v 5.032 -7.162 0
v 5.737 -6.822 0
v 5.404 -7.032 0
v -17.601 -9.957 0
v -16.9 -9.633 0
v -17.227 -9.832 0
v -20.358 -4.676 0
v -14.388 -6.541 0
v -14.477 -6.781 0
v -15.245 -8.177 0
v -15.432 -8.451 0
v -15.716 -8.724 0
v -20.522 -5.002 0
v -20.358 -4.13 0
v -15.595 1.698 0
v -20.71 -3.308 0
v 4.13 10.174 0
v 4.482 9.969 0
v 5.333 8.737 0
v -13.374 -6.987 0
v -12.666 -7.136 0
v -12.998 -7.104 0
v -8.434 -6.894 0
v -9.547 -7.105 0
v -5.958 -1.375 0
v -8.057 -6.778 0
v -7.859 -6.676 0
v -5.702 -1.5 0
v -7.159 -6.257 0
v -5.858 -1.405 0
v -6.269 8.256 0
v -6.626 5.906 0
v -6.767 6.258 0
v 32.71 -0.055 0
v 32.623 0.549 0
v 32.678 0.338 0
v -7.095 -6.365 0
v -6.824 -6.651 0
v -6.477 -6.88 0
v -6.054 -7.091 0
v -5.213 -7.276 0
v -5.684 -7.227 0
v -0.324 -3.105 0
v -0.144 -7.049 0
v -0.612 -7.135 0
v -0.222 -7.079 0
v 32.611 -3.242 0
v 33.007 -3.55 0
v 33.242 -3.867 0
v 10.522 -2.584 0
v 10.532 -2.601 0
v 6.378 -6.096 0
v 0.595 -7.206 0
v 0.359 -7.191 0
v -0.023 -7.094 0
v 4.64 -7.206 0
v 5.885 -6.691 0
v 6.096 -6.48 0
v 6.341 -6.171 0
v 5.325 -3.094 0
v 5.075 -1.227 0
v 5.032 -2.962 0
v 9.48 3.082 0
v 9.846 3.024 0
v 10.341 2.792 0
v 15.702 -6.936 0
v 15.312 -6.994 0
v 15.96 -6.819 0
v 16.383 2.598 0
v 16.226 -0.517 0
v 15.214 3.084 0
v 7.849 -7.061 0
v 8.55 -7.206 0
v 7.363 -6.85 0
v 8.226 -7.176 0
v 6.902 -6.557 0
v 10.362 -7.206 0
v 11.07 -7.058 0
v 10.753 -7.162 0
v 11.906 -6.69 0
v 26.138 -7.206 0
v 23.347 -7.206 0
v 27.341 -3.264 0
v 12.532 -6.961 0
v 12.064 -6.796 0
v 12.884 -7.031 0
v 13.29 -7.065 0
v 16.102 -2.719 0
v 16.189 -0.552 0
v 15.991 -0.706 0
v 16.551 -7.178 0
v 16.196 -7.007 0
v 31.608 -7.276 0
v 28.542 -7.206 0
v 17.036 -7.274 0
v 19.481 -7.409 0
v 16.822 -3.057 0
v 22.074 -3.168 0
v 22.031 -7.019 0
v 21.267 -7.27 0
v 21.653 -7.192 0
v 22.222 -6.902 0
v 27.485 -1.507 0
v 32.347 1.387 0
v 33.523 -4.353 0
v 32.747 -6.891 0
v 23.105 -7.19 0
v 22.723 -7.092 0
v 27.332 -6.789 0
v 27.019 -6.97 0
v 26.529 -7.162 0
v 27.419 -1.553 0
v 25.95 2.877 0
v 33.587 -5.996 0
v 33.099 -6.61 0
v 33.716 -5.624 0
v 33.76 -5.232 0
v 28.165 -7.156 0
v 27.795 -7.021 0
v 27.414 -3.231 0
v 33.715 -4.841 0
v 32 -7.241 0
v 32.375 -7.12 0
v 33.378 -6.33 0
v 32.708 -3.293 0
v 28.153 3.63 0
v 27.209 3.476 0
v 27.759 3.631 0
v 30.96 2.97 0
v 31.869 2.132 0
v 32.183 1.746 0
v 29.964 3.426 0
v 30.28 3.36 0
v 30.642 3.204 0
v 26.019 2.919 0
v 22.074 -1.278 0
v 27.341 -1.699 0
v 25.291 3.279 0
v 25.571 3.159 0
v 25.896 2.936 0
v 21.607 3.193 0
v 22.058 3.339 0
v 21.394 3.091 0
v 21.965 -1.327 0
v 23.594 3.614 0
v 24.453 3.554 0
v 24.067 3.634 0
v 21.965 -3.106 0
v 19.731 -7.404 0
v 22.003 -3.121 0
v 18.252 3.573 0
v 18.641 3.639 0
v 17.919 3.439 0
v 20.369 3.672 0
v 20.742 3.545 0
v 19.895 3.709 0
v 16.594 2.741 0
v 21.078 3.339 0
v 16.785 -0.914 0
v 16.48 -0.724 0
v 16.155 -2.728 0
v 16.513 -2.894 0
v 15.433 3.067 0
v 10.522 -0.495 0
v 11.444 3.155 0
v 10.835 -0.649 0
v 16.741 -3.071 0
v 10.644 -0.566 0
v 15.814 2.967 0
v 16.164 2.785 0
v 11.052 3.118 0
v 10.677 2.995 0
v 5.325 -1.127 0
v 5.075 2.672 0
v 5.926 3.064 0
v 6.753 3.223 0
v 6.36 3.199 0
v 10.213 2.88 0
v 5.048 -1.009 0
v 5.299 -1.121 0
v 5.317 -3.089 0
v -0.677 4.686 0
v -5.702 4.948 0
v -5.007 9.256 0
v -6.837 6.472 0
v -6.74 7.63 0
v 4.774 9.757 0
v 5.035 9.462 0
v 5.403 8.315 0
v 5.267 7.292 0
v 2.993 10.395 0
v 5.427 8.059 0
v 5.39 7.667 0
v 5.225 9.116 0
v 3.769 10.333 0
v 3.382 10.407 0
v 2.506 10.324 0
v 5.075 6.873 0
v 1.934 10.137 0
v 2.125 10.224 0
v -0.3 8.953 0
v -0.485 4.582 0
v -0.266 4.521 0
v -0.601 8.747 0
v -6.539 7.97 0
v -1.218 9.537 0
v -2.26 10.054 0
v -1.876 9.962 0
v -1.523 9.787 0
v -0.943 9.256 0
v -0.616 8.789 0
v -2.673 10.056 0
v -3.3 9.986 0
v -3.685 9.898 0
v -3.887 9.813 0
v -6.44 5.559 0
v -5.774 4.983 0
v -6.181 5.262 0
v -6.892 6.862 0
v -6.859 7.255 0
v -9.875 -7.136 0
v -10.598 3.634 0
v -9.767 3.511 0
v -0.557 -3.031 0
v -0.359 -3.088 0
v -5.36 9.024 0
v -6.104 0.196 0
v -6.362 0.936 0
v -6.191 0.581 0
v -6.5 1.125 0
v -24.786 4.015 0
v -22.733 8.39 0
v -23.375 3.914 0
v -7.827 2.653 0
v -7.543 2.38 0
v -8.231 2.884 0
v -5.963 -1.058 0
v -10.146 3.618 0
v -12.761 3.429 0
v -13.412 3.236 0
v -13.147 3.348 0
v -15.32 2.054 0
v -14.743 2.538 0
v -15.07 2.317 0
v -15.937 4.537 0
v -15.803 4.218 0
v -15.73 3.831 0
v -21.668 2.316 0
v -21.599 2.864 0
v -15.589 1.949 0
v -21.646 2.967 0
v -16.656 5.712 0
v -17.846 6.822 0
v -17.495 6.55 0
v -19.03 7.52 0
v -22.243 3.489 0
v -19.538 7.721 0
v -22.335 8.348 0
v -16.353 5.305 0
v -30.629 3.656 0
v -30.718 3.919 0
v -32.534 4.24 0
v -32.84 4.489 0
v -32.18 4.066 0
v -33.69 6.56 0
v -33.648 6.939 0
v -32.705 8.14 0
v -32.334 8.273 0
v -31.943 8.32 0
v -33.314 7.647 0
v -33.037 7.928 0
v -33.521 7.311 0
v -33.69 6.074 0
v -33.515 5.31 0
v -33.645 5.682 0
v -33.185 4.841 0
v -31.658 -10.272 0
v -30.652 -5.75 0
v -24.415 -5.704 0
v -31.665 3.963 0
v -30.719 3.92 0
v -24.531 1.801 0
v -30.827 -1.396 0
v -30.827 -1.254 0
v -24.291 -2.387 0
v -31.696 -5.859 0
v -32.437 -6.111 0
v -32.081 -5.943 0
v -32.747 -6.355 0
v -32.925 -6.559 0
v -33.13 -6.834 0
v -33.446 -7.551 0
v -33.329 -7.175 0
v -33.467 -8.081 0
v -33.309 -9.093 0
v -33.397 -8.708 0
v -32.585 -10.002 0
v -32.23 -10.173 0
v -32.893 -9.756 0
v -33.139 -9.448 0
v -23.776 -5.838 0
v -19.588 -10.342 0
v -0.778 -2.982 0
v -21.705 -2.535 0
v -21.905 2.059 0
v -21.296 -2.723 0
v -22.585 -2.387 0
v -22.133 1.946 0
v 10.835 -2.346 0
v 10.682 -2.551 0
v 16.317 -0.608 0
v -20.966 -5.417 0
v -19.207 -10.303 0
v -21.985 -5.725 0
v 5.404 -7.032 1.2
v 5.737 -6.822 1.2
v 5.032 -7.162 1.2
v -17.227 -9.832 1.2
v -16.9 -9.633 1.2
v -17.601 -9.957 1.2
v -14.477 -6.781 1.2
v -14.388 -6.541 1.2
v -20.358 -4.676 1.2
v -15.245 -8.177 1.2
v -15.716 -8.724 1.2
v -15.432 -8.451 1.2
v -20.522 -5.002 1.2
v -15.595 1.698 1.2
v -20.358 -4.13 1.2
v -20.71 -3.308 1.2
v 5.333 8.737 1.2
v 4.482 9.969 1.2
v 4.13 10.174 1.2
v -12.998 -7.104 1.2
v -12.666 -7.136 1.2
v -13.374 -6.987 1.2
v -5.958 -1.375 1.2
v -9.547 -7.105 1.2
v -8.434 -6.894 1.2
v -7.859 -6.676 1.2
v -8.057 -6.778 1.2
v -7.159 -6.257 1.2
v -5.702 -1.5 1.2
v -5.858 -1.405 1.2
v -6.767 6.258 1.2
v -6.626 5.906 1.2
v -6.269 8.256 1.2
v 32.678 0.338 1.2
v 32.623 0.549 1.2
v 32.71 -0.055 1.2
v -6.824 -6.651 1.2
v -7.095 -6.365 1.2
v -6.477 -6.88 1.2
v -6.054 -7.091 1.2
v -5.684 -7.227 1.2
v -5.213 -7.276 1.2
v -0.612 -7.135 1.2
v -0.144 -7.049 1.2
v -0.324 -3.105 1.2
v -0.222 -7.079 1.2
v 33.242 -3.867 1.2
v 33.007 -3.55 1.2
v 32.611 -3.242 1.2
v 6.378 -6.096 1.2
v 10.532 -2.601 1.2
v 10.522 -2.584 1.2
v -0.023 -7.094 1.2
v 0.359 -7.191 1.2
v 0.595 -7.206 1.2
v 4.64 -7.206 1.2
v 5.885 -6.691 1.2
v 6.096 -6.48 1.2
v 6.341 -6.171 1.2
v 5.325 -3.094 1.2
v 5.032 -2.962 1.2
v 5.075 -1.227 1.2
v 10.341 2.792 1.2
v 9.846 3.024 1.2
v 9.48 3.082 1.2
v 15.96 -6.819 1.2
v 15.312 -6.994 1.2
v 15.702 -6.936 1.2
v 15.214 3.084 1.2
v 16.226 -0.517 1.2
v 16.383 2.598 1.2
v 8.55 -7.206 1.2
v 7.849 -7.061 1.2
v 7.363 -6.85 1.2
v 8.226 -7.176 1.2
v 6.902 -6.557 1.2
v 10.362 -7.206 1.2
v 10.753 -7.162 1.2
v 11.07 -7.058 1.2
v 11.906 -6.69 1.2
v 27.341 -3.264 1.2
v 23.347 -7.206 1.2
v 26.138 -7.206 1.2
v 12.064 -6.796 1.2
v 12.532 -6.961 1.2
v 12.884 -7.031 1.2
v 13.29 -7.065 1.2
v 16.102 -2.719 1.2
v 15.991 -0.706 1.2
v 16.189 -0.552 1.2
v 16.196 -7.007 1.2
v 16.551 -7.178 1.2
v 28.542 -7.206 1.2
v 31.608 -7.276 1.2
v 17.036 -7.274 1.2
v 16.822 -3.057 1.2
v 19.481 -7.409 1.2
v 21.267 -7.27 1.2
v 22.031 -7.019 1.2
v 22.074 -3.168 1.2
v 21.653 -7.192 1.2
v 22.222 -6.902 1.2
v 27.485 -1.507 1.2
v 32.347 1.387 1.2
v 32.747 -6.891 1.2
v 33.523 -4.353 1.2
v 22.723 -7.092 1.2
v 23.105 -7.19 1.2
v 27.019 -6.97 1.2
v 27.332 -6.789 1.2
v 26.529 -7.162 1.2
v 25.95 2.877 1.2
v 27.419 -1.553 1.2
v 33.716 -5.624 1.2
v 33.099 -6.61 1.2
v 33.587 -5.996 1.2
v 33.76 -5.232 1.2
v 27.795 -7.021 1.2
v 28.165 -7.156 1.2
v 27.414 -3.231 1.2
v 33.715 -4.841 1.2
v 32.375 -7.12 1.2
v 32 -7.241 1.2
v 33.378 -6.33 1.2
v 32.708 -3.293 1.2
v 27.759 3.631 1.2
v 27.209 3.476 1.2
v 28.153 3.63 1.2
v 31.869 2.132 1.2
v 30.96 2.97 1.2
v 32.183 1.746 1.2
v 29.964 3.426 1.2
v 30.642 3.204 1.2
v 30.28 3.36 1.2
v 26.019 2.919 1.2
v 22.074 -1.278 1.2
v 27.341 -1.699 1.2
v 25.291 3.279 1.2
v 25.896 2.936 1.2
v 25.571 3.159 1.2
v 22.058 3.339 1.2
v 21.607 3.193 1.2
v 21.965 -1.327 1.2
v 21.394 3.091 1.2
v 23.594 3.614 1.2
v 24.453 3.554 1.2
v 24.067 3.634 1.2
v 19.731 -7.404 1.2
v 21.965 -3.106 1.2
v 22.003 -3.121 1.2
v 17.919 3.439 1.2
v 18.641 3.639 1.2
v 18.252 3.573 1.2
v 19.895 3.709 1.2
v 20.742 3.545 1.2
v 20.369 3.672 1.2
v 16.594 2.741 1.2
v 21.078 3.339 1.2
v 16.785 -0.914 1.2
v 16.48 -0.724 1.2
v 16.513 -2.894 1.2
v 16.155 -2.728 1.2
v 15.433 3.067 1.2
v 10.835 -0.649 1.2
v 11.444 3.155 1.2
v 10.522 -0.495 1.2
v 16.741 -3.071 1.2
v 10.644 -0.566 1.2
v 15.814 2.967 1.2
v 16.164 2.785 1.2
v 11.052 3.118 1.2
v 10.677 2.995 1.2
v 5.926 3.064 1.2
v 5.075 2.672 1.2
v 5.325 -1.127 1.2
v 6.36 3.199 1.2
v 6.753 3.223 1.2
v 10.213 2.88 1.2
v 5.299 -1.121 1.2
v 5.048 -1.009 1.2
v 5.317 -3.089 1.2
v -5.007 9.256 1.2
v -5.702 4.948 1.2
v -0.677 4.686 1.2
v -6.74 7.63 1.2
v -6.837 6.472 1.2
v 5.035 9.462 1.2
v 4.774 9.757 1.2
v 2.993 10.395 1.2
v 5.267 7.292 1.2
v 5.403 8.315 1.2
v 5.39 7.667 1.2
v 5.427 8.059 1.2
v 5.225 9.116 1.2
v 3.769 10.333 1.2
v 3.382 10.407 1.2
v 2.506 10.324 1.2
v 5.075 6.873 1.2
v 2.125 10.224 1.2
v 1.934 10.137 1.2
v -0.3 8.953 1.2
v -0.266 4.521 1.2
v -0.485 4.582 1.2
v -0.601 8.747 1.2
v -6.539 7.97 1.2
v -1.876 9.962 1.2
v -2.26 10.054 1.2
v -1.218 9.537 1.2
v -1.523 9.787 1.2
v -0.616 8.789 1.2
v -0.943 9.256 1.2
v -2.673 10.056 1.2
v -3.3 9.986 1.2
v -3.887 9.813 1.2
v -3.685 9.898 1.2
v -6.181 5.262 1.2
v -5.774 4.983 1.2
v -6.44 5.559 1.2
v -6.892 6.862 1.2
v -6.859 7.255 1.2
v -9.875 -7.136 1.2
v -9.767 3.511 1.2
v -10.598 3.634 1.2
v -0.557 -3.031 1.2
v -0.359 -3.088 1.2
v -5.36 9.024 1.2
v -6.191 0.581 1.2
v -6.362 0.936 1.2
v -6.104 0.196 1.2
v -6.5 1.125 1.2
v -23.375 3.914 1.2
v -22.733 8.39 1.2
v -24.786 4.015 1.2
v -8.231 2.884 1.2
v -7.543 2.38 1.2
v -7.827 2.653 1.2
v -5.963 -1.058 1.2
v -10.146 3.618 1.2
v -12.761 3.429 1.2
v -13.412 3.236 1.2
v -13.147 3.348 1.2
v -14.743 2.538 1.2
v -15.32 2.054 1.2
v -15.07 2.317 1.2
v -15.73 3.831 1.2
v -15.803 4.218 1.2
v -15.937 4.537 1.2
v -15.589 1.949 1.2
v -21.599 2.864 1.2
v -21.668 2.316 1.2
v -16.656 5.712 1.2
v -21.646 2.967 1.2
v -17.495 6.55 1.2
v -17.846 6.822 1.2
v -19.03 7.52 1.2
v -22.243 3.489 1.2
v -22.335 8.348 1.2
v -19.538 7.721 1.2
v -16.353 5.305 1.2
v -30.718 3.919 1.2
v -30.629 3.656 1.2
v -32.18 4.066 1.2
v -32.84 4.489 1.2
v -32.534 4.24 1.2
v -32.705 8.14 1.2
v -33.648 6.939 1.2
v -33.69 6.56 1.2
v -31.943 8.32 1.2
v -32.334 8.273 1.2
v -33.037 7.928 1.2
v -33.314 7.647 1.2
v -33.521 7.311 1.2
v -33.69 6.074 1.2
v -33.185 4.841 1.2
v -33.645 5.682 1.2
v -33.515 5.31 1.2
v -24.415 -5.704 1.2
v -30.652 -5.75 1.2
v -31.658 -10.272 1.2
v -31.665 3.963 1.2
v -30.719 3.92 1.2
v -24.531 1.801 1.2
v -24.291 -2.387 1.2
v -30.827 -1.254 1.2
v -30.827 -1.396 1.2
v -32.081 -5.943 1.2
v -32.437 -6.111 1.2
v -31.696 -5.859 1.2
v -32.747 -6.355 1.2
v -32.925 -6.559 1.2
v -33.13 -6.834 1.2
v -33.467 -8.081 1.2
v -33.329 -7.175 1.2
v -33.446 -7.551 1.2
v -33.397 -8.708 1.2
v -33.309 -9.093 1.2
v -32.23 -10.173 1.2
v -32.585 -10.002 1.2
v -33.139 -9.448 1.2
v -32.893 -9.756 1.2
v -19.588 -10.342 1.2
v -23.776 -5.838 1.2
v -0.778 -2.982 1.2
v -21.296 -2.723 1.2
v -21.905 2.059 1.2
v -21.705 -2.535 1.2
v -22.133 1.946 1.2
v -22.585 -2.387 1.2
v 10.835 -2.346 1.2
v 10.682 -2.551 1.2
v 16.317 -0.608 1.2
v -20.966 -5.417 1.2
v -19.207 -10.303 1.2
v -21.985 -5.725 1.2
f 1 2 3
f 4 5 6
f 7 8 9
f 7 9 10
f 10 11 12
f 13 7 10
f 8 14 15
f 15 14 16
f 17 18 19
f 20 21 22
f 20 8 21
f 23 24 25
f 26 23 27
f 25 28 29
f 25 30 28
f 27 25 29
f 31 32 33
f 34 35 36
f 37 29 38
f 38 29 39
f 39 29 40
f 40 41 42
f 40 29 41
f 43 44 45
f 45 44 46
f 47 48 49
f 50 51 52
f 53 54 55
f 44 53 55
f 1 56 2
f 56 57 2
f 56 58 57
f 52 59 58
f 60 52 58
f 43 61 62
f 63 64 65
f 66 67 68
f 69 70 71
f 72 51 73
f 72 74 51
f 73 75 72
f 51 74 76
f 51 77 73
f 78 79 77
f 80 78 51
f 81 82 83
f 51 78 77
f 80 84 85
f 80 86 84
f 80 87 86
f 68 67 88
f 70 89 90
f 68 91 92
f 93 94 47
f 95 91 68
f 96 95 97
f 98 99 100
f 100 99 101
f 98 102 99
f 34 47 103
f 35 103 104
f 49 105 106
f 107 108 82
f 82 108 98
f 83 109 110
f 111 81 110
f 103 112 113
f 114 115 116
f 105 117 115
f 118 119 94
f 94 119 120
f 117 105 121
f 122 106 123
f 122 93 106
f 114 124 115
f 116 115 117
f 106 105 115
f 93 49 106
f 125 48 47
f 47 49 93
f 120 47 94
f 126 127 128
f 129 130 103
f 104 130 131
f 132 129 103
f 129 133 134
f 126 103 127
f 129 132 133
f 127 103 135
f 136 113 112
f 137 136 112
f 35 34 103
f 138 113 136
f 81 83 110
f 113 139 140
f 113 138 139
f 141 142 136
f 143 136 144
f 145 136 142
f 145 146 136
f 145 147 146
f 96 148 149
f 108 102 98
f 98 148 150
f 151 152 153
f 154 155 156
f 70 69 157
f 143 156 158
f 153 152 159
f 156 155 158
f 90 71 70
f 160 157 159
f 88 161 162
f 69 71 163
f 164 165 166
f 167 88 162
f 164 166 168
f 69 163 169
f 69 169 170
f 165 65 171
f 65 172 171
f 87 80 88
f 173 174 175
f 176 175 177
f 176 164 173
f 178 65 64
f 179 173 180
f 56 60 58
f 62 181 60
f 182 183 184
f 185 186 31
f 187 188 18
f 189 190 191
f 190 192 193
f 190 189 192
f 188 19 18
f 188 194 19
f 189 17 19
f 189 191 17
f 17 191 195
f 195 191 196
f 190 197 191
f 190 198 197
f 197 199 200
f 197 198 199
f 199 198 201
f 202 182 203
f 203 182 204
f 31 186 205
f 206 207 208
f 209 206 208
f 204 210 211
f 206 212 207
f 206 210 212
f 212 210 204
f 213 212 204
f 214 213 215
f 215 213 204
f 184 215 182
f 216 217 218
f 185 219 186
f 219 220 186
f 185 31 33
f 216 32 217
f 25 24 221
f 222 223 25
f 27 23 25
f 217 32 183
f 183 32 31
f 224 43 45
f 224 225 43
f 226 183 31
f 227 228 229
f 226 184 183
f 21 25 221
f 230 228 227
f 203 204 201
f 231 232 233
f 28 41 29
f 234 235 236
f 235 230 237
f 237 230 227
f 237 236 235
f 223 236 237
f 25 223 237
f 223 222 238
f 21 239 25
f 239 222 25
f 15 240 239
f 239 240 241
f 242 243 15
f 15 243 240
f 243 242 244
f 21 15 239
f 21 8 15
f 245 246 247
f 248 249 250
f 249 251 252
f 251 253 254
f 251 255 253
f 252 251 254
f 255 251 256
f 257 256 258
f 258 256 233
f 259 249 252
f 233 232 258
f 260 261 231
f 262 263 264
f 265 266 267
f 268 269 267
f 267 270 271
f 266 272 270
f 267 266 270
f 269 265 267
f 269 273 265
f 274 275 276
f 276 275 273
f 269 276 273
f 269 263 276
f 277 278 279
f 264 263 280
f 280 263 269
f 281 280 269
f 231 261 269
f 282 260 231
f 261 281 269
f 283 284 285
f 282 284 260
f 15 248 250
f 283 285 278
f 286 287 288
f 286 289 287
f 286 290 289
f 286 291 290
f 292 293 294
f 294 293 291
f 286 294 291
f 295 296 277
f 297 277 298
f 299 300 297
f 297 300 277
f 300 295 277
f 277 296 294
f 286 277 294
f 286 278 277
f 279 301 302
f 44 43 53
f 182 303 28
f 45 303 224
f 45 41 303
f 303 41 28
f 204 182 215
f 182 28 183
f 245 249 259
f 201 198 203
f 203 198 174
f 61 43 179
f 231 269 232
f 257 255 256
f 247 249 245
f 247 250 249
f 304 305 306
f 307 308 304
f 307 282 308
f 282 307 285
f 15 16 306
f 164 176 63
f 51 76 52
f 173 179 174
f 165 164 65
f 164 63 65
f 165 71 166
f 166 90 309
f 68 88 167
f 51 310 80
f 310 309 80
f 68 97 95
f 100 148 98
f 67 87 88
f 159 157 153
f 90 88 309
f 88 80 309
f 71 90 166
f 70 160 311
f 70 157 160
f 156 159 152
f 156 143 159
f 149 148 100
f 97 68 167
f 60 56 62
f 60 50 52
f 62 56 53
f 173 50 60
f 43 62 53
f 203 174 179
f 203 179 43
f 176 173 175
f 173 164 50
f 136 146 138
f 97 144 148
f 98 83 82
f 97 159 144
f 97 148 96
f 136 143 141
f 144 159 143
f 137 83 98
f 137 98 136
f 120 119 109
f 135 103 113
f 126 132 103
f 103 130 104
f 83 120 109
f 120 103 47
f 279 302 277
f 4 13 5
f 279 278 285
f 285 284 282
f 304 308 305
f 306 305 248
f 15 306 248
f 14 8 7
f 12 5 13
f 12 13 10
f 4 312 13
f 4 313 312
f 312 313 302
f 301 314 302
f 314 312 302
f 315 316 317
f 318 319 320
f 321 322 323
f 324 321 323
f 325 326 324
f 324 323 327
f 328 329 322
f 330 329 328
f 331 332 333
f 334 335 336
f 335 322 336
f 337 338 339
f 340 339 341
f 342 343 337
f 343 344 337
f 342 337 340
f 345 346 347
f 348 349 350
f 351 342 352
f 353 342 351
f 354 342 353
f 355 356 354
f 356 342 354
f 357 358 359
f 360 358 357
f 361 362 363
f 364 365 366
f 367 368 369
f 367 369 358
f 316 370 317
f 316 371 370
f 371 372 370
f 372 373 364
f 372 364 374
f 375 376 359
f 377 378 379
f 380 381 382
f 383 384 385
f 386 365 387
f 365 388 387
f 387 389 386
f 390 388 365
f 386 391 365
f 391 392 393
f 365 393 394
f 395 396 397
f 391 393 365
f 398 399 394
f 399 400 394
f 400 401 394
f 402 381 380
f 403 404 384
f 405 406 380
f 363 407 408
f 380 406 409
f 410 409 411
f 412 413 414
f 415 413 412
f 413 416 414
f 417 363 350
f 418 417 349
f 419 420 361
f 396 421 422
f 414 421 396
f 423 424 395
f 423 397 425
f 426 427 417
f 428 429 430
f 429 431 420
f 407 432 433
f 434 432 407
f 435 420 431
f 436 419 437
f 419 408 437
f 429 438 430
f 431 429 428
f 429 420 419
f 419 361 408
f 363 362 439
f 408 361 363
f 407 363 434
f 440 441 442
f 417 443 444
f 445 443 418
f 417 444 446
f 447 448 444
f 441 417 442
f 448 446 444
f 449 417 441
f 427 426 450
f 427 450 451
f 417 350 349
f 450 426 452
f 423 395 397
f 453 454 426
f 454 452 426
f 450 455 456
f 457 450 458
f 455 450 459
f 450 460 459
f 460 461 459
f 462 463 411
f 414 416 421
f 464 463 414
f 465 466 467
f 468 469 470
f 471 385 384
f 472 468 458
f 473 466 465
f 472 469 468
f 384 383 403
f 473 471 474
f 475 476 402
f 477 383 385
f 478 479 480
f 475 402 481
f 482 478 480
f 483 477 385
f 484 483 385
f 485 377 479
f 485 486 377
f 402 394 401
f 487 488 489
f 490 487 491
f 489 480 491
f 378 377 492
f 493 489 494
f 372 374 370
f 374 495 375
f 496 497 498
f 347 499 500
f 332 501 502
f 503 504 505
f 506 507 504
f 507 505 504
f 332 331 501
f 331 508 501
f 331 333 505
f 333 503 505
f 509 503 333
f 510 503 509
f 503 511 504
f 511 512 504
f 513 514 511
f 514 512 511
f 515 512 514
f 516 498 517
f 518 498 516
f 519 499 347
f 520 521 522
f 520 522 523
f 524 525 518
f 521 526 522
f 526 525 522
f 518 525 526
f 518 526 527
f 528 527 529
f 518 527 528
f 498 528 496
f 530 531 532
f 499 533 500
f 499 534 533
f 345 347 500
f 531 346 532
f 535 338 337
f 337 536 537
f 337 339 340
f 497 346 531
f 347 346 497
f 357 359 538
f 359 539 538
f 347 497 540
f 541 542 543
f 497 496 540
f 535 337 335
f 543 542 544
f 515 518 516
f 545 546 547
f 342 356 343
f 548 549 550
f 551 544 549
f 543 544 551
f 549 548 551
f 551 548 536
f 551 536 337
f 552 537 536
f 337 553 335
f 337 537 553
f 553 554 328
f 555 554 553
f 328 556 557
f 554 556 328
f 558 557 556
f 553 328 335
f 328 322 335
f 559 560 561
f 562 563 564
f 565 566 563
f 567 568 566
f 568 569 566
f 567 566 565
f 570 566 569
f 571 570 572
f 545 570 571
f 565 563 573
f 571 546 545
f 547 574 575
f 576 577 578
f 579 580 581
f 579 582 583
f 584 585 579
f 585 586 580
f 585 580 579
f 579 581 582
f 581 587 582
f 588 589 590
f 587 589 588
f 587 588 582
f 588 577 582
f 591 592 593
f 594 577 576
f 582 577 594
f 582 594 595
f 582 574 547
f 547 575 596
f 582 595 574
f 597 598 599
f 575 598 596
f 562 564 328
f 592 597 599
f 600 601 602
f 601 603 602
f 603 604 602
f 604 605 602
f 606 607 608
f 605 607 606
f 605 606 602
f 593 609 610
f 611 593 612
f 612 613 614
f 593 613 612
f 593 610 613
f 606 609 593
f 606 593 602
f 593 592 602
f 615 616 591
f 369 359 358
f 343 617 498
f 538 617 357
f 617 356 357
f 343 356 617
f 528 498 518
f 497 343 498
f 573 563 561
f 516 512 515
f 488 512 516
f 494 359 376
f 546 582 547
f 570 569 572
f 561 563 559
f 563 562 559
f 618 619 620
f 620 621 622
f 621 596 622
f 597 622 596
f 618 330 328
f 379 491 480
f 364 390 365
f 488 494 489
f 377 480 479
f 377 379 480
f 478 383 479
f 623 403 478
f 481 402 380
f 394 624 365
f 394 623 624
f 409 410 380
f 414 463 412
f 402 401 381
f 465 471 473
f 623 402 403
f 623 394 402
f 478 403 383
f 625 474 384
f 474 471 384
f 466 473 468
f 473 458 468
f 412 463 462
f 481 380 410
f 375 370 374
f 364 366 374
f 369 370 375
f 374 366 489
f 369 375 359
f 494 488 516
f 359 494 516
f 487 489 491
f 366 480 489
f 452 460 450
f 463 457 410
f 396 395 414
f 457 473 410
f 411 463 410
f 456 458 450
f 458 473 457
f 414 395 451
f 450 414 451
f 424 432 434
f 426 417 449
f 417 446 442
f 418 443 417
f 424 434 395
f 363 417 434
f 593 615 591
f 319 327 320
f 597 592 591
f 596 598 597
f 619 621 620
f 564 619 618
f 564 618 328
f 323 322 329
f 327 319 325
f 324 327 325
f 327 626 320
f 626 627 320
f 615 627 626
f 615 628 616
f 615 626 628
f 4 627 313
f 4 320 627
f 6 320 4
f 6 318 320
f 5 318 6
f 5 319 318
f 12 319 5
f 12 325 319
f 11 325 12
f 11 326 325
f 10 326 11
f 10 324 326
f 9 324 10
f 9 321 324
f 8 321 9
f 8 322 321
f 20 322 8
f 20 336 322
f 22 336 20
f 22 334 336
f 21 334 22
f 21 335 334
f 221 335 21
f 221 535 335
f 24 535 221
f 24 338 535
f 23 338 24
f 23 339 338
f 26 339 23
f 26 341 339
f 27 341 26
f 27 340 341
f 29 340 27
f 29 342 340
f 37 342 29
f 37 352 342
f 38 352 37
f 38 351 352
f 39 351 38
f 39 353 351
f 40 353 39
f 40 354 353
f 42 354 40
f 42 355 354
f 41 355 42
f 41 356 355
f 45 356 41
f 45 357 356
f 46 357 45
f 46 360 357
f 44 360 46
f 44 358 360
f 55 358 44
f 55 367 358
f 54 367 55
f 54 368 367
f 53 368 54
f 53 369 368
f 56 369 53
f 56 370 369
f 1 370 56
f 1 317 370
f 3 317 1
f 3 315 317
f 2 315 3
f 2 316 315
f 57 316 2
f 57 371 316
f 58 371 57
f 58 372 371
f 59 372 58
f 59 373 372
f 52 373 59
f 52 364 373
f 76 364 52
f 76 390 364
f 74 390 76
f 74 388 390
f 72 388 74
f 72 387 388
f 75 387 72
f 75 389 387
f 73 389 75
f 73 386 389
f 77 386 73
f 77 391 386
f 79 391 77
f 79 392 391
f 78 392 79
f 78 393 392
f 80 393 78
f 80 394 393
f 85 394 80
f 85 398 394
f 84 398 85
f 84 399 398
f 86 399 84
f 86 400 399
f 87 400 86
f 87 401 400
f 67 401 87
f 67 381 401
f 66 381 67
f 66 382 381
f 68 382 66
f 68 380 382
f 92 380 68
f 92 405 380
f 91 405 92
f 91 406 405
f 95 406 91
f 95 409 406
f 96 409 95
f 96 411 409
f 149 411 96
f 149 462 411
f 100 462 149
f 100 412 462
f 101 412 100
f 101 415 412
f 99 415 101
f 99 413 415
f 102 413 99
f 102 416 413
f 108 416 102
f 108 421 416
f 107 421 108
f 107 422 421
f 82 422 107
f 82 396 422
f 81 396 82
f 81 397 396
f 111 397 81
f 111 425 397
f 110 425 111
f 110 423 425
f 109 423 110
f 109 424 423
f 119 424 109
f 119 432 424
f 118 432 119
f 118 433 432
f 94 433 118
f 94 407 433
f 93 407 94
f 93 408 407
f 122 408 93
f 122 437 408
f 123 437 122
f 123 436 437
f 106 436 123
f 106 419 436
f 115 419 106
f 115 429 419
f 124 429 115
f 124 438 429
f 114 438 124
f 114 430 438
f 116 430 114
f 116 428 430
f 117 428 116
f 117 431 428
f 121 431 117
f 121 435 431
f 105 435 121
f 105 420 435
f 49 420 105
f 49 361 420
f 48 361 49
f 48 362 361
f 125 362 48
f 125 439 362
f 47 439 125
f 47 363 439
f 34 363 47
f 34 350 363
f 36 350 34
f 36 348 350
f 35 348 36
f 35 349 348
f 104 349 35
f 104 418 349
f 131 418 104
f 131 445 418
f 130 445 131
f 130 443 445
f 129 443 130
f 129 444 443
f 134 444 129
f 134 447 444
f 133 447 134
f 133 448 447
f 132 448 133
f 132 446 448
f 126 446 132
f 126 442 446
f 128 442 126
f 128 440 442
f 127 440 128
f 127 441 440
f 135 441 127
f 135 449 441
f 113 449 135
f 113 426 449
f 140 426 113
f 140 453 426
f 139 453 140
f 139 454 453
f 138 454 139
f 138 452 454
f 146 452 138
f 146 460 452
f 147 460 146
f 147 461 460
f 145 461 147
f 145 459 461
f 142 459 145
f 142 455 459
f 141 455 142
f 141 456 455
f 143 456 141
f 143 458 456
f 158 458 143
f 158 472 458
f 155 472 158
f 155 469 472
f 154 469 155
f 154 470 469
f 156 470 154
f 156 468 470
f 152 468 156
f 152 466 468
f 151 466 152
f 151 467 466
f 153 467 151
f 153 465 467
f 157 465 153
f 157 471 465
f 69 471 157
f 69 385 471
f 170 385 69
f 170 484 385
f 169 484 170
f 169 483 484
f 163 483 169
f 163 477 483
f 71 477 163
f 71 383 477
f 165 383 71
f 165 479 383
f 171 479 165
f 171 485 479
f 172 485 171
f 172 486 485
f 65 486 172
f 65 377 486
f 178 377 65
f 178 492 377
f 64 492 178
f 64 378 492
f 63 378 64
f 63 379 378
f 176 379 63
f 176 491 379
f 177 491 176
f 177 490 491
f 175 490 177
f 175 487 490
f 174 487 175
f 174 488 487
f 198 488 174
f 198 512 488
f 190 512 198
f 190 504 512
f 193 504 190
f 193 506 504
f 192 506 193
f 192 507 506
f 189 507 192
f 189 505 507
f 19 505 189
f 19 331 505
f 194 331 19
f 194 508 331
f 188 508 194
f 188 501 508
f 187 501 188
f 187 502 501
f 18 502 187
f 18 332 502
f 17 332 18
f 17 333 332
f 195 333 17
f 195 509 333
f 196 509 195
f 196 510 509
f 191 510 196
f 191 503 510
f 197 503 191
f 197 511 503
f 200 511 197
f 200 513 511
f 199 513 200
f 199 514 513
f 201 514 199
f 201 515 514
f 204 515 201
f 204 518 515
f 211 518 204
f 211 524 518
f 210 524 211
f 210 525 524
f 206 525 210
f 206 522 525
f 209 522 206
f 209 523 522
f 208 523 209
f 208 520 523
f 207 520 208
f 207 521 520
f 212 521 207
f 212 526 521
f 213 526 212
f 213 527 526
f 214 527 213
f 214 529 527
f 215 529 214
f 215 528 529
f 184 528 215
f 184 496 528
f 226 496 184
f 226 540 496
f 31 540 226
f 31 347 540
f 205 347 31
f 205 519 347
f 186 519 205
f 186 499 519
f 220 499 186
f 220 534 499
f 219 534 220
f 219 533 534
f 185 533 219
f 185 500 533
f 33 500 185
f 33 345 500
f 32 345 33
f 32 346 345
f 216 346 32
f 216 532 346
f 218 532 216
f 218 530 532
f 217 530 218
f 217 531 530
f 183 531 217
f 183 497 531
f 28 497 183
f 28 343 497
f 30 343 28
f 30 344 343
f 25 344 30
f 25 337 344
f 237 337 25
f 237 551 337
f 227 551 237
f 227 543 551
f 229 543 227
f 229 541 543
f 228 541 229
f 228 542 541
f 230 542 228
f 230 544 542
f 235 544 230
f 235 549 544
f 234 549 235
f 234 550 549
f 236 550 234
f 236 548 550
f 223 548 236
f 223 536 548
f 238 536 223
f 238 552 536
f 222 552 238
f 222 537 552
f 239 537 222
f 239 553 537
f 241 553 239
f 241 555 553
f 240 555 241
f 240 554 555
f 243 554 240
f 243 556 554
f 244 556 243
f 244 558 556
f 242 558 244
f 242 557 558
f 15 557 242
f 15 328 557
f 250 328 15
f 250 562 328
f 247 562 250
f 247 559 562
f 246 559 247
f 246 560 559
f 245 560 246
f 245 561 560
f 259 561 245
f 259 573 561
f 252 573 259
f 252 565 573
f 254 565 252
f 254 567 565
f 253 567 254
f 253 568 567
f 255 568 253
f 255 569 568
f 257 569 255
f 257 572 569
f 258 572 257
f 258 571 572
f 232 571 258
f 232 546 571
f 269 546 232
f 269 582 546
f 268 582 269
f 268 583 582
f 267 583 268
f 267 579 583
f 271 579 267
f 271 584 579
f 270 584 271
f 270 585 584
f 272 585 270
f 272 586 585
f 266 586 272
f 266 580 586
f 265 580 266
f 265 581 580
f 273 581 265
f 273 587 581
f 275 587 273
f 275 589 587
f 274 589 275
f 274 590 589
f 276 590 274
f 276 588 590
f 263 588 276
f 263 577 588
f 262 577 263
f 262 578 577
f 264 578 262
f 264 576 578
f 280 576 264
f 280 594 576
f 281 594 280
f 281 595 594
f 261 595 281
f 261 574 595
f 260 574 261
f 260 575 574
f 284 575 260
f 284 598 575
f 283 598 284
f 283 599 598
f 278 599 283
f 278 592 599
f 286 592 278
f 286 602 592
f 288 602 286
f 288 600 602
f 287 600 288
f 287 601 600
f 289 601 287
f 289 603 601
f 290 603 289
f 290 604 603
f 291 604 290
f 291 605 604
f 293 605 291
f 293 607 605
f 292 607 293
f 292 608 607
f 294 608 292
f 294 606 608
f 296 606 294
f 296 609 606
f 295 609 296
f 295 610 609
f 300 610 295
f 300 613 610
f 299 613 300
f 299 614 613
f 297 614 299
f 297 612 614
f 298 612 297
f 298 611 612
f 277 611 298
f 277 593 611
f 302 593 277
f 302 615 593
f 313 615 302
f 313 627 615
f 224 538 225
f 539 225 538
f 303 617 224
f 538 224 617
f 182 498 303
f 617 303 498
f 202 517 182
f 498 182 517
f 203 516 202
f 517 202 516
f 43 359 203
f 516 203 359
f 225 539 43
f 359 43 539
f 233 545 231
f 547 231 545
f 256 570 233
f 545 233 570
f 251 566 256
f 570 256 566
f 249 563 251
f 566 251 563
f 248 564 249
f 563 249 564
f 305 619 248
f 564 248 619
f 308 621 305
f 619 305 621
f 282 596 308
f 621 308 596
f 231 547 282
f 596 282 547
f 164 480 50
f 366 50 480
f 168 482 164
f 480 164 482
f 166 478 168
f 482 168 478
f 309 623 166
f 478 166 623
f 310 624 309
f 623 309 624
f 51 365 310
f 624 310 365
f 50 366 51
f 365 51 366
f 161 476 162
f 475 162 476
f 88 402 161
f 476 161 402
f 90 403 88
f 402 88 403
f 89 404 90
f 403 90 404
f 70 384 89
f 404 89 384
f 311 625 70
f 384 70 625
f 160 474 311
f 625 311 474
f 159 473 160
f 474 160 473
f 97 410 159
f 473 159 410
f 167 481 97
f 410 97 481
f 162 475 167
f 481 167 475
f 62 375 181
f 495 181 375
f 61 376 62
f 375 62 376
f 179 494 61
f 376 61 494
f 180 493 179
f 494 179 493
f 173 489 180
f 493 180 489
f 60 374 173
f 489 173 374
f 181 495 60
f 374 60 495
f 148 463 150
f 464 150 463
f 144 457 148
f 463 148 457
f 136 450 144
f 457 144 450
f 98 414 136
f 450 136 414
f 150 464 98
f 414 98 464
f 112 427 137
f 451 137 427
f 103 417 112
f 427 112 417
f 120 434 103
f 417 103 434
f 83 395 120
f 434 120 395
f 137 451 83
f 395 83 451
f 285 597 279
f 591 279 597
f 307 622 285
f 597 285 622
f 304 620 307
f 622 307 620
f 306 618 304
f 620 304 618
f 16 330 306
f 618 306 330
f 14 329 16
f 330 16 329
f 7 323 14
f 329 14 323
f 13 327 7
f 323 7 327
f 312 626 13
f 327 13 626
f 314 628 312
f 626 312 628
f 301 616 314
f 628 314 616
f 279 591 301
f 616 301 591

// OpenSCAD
// file: bellum_text_traced.scad
// bellum_text_traced.scad
// "Bellum" lettering traced from the source logo image with
// OpenCV (4x cubic upscale, threshold, morphological cleanup,
// approxPolyDP 2px). Coordinates are centered, Y-up, and
// normalized to 100 units of total width.
// Regenerate with scratchpad/trace2_emit.py if retuning.

module bellum_traced_2d() {
    polygon(points=[[-49.89,10.25],[-49.89,9.49],[-49.35,8.94],[-46.95,8.83],[-45.64,7.74],[-45.09,6.11],[-45.42,-2.07],[-45.09,-10.25],[-46.07,-11.56],[-49.24,-11.89],[-49.56,-12.32],[-49.45,-13.30],[-30.59,-13.41],[-28.08,-12.87],[-26.23,-11.45],[-25.03,-9.27],[-24.48,-6.65],[-25.03,-4.80],[-26.01,-3.27],[-29.28,-0.55],[-27.10,2.84],[-27.32,5.78],[-27.97,6.98],[-29.28,8.29],[-31.13,9.38],[-35.50,10.36],[-40.62,-1.42],[-39.97,-0.98],[-35.06,-0.98],[-33.10,-1.31],[-31.68,-1.96],[-30.04,-3.60],[-29.06,-5.89],[-29.06,-7.96],[-29.83,-9.49],[-31.35,-10.91],[-33.86,-11.67],[-37.35,-11.89],[-39.97,-11.34],[-40.95,-10.25],[-41.38,8.40],[-40.84,8.83],[-38.99,9.05],[-35.93,8.83],[-33.32,7.85],[-31.57,6.32],[-30.92,4.91],[-31.24,2.40],[-32.55,0.98],[-33.86,0.33],[-39.31,0.00],[-40.29,0.44],[-40.95,1.53],[-41.49,6.22]], paths=[[0, 1, 2, 3, 4, 5, 6, 7, 8, 9, 10, 11, 12, 13, 14, 15, 16, 17, 18, 19, 20, 21, 22, 23, 24, 25], [26, 27, 28, 29, 30, 31, 32, 33, 34, 35, 36, 37, 38, 39], [40, 41, 42, 43, 44, 45, 46, 47, 48, 49, 50, 51, 52, 53]]);
    polygon(points=[[-21.76,1.53],[-23.28,-0.44],[-23.72,-1.85],[-23.72,-3.82],[-22.96,-6.22],[-21.54,-7.63],[-19.79,-8.40],[-15.43,-8.40],[-13.69,-8.07],[-12.05,-7.09],[-10.09,-5.13],[-10.31,-4.69],[-11.07,-4.58],[-13.36,-6.43],[-15.76,-7.20],[-18.27,-6.54],[-20.34,-4.47],[-20.77,-3.49],[-20.67,-2.62],[-20.01,-2.18],[-18.48,-2.07],[-12.70,-2.40],[-12.05,-1.96],[-12.27,0.00],[-13.90,1.96],[-16.30,2.94],[-19.68,2.62],[-20.34,-0.22],[-19.47,0.98],[-17.61,1.96],[-15.98,1.53],[-14.78,0.00],[-14.99,-0.76],[-15.98,-0.98],[-20.01,-0.98]], paths=[[0, 1, 2, 3, 4, 5, 6, 7, 8, 9, 10, 11, 12, 13, 14, 15, 16, 17, 18, 19, 20, 21, 22, 23, 24, 25, 26], [27, 28, 29, 30, 31, 32, 33, 34]]);
    polygon(points=[[-3.87,12.98],[-4.85,12.87],[-6.60,12.00],[-8.02,10.80],[-7.80,10.25],[-6.49,9.60],[-6.16,8.62],[-6.16,-3.93],[-6.49,-6.54],[-7.36,-7.20],[-8.67,-7.31],[-9.00,-7.74],[-8.89,-8.29],[-8.23,-8.62],[-1.04,-8.40],[-1.04,-7.85],[-1.47,-7.42],[-3.44,-6.98],[-3.98,-5.78],[-3.76,11.01],[-3.44,11.67],[-3.44,12.54]], paths=[[0, 1, 2, 3, 4, 5, 6, 7, 8, 9, 10, 11, 12, 13, 14, 15, 16, 17, 18, 19, 20, 21]]);
    polygon(points=[[5.07,13.52],[4.31,13.41],[0.82,11.56],[-0.16,10.47],[0.27,9.71],[1.47,10.03],[2.13,9.49],[2.34,7.85],[2.24,-5.45],[1.58,-7.20],[-0.05,-7.63],[0.05,-8.18],[0.93,-8.51],[7.25,-8.51],[7.58,-8.18],[6.92,-7.20],[6.05,-7.20],[5.07,-6.32],[5.18,-1.85],[4.85,-0.65],[5.18,0.33],[5.18,11.34],[5.73,12.54],[5.62,13.20]], paths=[[0, 1, 2, 3, 4, 5, 6, 7, 8, 9, 10, 11, 12, 13, 14, 15, 16, 17, 18, 19, 20, 21, 22, 23]]);
    polygon(points=[[9.00,1.64],[9.11,0.87],[10.09,0.76],[10.74,0.00],[11.07,-0.98],[11.07,-5.56],[11.61,-7.31],[12.60,-8.18],[13.36,-8.51],[16.19,-8.51],[18.92,-7.31],[19.47,-7.31],[20.12,-8.18],[20.67,-8.29],[23.83,-8.18],[24.48,-7.74],[24.37,-6.87],[23.17,-6.87],[22.52,-6.32],[22.19,-0.33],[22.63,0.55],[23.61,1.31],[23.72,2.07],[17.83,2.18],[17.72,1.64],[19.25,0.98],[19.68,0.22],[19.68,-4.58],[18.38,-6.32],[16.74,-6.87],[15.65,-6.87],[14.67,-6.43],[13.69,-4.80],[13.69,0.22],[14.67,2.07],[10.41,2.29]], paths=[[0, 1, 2, 3, 4, 5, 6, 7, 8, 9, 10, 11, 12, 13, 14, 15, 16, 17, 18, 19, 20, 21, 22, 23, 24, 25, 26, 27, 28, 29, 30, 31, 32, 33, 34, 35]]);
    polygon(points=[[27.21,1.85],[27.21,1.20],[28.95,0.11],[29.06,-6.22],[28.52,-7.20],[26.55,-7.52],[26.44,-8.29],[26.77,-8.62],[30.59,-8.83],[32.99,-8.62],[33.53,-8.29],[33.10,-7.31],[32.12,-7.20],[31.57,-6.65],[31.57,-0.87],[32.22,0.00],[34.41,0.98],[36.04,0.76],[36.70,0.11],[37.24,-1.53],[37.24,-6.00],[36.91,-6.76],[35.50,-7.74],[35.61,-8.18],[36.48,-8.51],[40.84,-8.51],[41.60,-8.07],[41.60,-7.74],[40.51,-7.20],[39.97,-6.43],[39.97,-1.96],[40.73,-0.55],[42.91,0.98],[44.66,0.65],[45.53,-0.33],[45.75,-1.09],[45.53,-6.43],[44.98,-7.20],[44.00,-7.52],[43.78,-8.07],[44.66,-8.51],[49.45,-8.62],[50.00,-8.18],[49.56,-7.42],[48.80,-7.42],[48.15,-6.76],[48.36,0.00],[47.93,1.31],[46.51,2.62],[43.68,2.94],[41.82,2.07],[40.29,0.87],[39.86,0.87],[38.66,2.51],[37.35,2.94],[34.95,2.51],[32.22,1.20],[31.46,1.42],[31.79,2.62],[31.24,3.05],[29.28,2.94]], paths=[[0, 1, 2, 3, 4, 5, 6, 7, 8, 9, 10, 11, 12, 13, 14, 15, 16, 17, 18, 19, 20, 21, 22, 23, 24, 25, 26, 27, 28, 29, 30, 31, 32, 33, 34, 35, 36, 37, 38, 39, 40, 41, 42, 43, 44, 45, 46, 47, 48, 49, 50, 51, 52, 53, 54, 55, 56, 57, 58, 59, 60]]);
}

bellum_traced_2d();
// file: bellum_badge_002.scad
// bellum_badge_002.scad
// v002: "Bellum" lettering traced from the source logo image (see
// bellum_text_traced.scad) instead of approximated with a system font,
// so the letterforms match the original exactly.
// Two-color badge of the "Bellum" checkerboard logo, built as separate
// printable parts (print some in white, some in black, glue together):
//   base_disc()          black - circle background; its top surface shows
//                        through the lattice holes as the black squares
//   white_lattice()      white - diamond border + white squares + grout
//                        webs, one connected piece; glue onto the disc
//   black_tiles()        black - optional drop-in tiles if you want the
//                        black squares flush with the white top surface
//   text_plate_black()   black - outline plate behind the letters (the
//                        logo's dark text outline)
//   text_letters_white() white - "Bellum" letters, glue onto the plate
//
// Everything scales from badge_d. Layer thicknesses and fit clearance are
// absolute (printer-dependent), so they stay put when you rescale.
// Companion files export one part each: _base, _lattice, _tiles,
// _text_black, _text_white. This master file shows the assembled badge.

$fa = 2;
$fs = 0.4;

// ---- scale ----
badge_d = 80;       // badge diameter: THE scale knob
n       = 5;        // checker tiles per row (odd -> black diamond corners)

// ---- thicknesses (absolute mm, independent of badge_d) ----
t_base = 3;         // black disc
t_top  = 2;         // white lattice and drop-in tiles (total badge = 5)
t_text = 1.2;       // each text layer (plate and letters)
clr    = 0.15;      // per-side XY clearance for the drop-in tiles

// ---- proportions (fractions of badge_d, from the logo) ----
diamond_frac = 0.94;   // diamond diagonal / badge diameter
border_w = max(0.045 * badge_d, 1.6);  // white rim around the checker field
grout_w  = max(0.014 * badge_d, 0.8);  // white web between tiles
text_w   = 0.80 * badge_d;             // width of "Bellum"
outline_w = max(0.022 * badge_d, 1.2); // black outline around the letters

use <bellum_text_traced.scad>  // lettering traced from the logo image

// ---- derived ----
half_diag = diamond_frac * badge_d / 2;
sq_o  = half_diag * sqrt(2);            // outer side of the white diamond
sq_f  = sq_o - 2 * border_w;            // side of the checker field
tile  = (sq_f - (n - 1) * grout_w) / n; // checker tile size
pitch = tile + grout_w;

eps = 0.01;

// ---------------- 2D shapes ----------------

// centers of the black squares, in the unrotated field frame
function tile_org(i) = -sq_f / 2 + i * pitch;

module black_squares_2d(shrink = 0) {
    for (i = [0 : n - 1], j = [0 : n - 1])
        if ((i + j) % 2 == 0)
            translate([tile_org(i) + shrink, tile_org(j) + shrink])
                square(tile - 2 * shrink);
}

// white diamond: border + white squares + grout webs (one connected piece)
module lattice_2d() {
    rotate(45) difference() {
        square(sq_o, center = true);
        black_squares_2d();
    }
}

// traced lettering is normalized to 100 units wide, centered
module text_2d() {
    scale(text_w / 100) bellum_traced_2d();
}

// ---------------- printable parts (each flat on Z=0) ----------------

module base_disc() {
    linear_extrude(t_base) circle(badge_d / 2);
}

module white_lattice() {
    linear_extrude(t_top) lattice_2d();
}

// optional flush inlays for the black squares, laid out for printing
module black_tiles() {
    for (i = [0 : n - 1], j = [0 : n - 1])
        if ((i + j) % 2 == 0)
            translate([i * (tile + 3), j * (tile + 3)])
                linear_extrude(t_top)
                    square(tile - 2 * clr);
}

module text_plate_black() {
    linear_extrude(t_text) offset(r = outline_w) text_2d();
}

module text_letters_white() {
    linear_extrude(t_text) text_2d();
}

// ---------------- assembled preview ----------------

module assembly() {
    color([0.15, 0.15, 0.15])  base_disc();
    color("white")   translate([0, 0, t_base]) white_lattice();
    color([0.15, 0.15, 0.15])  translate([0, 0, t_base + t_top]) text_plate_black();
    color("white")   translate([0, 0, t_base + t_top + t_text])
                         text_letters_white();
}

assembly();
// main file
// bellum_badge_002_text_black.scad - print in BLACK
// Outline plate behind the letters. Glue onto the checkerboard, centered.
use <bellum_badge_002.scad>
text_plate_black();
